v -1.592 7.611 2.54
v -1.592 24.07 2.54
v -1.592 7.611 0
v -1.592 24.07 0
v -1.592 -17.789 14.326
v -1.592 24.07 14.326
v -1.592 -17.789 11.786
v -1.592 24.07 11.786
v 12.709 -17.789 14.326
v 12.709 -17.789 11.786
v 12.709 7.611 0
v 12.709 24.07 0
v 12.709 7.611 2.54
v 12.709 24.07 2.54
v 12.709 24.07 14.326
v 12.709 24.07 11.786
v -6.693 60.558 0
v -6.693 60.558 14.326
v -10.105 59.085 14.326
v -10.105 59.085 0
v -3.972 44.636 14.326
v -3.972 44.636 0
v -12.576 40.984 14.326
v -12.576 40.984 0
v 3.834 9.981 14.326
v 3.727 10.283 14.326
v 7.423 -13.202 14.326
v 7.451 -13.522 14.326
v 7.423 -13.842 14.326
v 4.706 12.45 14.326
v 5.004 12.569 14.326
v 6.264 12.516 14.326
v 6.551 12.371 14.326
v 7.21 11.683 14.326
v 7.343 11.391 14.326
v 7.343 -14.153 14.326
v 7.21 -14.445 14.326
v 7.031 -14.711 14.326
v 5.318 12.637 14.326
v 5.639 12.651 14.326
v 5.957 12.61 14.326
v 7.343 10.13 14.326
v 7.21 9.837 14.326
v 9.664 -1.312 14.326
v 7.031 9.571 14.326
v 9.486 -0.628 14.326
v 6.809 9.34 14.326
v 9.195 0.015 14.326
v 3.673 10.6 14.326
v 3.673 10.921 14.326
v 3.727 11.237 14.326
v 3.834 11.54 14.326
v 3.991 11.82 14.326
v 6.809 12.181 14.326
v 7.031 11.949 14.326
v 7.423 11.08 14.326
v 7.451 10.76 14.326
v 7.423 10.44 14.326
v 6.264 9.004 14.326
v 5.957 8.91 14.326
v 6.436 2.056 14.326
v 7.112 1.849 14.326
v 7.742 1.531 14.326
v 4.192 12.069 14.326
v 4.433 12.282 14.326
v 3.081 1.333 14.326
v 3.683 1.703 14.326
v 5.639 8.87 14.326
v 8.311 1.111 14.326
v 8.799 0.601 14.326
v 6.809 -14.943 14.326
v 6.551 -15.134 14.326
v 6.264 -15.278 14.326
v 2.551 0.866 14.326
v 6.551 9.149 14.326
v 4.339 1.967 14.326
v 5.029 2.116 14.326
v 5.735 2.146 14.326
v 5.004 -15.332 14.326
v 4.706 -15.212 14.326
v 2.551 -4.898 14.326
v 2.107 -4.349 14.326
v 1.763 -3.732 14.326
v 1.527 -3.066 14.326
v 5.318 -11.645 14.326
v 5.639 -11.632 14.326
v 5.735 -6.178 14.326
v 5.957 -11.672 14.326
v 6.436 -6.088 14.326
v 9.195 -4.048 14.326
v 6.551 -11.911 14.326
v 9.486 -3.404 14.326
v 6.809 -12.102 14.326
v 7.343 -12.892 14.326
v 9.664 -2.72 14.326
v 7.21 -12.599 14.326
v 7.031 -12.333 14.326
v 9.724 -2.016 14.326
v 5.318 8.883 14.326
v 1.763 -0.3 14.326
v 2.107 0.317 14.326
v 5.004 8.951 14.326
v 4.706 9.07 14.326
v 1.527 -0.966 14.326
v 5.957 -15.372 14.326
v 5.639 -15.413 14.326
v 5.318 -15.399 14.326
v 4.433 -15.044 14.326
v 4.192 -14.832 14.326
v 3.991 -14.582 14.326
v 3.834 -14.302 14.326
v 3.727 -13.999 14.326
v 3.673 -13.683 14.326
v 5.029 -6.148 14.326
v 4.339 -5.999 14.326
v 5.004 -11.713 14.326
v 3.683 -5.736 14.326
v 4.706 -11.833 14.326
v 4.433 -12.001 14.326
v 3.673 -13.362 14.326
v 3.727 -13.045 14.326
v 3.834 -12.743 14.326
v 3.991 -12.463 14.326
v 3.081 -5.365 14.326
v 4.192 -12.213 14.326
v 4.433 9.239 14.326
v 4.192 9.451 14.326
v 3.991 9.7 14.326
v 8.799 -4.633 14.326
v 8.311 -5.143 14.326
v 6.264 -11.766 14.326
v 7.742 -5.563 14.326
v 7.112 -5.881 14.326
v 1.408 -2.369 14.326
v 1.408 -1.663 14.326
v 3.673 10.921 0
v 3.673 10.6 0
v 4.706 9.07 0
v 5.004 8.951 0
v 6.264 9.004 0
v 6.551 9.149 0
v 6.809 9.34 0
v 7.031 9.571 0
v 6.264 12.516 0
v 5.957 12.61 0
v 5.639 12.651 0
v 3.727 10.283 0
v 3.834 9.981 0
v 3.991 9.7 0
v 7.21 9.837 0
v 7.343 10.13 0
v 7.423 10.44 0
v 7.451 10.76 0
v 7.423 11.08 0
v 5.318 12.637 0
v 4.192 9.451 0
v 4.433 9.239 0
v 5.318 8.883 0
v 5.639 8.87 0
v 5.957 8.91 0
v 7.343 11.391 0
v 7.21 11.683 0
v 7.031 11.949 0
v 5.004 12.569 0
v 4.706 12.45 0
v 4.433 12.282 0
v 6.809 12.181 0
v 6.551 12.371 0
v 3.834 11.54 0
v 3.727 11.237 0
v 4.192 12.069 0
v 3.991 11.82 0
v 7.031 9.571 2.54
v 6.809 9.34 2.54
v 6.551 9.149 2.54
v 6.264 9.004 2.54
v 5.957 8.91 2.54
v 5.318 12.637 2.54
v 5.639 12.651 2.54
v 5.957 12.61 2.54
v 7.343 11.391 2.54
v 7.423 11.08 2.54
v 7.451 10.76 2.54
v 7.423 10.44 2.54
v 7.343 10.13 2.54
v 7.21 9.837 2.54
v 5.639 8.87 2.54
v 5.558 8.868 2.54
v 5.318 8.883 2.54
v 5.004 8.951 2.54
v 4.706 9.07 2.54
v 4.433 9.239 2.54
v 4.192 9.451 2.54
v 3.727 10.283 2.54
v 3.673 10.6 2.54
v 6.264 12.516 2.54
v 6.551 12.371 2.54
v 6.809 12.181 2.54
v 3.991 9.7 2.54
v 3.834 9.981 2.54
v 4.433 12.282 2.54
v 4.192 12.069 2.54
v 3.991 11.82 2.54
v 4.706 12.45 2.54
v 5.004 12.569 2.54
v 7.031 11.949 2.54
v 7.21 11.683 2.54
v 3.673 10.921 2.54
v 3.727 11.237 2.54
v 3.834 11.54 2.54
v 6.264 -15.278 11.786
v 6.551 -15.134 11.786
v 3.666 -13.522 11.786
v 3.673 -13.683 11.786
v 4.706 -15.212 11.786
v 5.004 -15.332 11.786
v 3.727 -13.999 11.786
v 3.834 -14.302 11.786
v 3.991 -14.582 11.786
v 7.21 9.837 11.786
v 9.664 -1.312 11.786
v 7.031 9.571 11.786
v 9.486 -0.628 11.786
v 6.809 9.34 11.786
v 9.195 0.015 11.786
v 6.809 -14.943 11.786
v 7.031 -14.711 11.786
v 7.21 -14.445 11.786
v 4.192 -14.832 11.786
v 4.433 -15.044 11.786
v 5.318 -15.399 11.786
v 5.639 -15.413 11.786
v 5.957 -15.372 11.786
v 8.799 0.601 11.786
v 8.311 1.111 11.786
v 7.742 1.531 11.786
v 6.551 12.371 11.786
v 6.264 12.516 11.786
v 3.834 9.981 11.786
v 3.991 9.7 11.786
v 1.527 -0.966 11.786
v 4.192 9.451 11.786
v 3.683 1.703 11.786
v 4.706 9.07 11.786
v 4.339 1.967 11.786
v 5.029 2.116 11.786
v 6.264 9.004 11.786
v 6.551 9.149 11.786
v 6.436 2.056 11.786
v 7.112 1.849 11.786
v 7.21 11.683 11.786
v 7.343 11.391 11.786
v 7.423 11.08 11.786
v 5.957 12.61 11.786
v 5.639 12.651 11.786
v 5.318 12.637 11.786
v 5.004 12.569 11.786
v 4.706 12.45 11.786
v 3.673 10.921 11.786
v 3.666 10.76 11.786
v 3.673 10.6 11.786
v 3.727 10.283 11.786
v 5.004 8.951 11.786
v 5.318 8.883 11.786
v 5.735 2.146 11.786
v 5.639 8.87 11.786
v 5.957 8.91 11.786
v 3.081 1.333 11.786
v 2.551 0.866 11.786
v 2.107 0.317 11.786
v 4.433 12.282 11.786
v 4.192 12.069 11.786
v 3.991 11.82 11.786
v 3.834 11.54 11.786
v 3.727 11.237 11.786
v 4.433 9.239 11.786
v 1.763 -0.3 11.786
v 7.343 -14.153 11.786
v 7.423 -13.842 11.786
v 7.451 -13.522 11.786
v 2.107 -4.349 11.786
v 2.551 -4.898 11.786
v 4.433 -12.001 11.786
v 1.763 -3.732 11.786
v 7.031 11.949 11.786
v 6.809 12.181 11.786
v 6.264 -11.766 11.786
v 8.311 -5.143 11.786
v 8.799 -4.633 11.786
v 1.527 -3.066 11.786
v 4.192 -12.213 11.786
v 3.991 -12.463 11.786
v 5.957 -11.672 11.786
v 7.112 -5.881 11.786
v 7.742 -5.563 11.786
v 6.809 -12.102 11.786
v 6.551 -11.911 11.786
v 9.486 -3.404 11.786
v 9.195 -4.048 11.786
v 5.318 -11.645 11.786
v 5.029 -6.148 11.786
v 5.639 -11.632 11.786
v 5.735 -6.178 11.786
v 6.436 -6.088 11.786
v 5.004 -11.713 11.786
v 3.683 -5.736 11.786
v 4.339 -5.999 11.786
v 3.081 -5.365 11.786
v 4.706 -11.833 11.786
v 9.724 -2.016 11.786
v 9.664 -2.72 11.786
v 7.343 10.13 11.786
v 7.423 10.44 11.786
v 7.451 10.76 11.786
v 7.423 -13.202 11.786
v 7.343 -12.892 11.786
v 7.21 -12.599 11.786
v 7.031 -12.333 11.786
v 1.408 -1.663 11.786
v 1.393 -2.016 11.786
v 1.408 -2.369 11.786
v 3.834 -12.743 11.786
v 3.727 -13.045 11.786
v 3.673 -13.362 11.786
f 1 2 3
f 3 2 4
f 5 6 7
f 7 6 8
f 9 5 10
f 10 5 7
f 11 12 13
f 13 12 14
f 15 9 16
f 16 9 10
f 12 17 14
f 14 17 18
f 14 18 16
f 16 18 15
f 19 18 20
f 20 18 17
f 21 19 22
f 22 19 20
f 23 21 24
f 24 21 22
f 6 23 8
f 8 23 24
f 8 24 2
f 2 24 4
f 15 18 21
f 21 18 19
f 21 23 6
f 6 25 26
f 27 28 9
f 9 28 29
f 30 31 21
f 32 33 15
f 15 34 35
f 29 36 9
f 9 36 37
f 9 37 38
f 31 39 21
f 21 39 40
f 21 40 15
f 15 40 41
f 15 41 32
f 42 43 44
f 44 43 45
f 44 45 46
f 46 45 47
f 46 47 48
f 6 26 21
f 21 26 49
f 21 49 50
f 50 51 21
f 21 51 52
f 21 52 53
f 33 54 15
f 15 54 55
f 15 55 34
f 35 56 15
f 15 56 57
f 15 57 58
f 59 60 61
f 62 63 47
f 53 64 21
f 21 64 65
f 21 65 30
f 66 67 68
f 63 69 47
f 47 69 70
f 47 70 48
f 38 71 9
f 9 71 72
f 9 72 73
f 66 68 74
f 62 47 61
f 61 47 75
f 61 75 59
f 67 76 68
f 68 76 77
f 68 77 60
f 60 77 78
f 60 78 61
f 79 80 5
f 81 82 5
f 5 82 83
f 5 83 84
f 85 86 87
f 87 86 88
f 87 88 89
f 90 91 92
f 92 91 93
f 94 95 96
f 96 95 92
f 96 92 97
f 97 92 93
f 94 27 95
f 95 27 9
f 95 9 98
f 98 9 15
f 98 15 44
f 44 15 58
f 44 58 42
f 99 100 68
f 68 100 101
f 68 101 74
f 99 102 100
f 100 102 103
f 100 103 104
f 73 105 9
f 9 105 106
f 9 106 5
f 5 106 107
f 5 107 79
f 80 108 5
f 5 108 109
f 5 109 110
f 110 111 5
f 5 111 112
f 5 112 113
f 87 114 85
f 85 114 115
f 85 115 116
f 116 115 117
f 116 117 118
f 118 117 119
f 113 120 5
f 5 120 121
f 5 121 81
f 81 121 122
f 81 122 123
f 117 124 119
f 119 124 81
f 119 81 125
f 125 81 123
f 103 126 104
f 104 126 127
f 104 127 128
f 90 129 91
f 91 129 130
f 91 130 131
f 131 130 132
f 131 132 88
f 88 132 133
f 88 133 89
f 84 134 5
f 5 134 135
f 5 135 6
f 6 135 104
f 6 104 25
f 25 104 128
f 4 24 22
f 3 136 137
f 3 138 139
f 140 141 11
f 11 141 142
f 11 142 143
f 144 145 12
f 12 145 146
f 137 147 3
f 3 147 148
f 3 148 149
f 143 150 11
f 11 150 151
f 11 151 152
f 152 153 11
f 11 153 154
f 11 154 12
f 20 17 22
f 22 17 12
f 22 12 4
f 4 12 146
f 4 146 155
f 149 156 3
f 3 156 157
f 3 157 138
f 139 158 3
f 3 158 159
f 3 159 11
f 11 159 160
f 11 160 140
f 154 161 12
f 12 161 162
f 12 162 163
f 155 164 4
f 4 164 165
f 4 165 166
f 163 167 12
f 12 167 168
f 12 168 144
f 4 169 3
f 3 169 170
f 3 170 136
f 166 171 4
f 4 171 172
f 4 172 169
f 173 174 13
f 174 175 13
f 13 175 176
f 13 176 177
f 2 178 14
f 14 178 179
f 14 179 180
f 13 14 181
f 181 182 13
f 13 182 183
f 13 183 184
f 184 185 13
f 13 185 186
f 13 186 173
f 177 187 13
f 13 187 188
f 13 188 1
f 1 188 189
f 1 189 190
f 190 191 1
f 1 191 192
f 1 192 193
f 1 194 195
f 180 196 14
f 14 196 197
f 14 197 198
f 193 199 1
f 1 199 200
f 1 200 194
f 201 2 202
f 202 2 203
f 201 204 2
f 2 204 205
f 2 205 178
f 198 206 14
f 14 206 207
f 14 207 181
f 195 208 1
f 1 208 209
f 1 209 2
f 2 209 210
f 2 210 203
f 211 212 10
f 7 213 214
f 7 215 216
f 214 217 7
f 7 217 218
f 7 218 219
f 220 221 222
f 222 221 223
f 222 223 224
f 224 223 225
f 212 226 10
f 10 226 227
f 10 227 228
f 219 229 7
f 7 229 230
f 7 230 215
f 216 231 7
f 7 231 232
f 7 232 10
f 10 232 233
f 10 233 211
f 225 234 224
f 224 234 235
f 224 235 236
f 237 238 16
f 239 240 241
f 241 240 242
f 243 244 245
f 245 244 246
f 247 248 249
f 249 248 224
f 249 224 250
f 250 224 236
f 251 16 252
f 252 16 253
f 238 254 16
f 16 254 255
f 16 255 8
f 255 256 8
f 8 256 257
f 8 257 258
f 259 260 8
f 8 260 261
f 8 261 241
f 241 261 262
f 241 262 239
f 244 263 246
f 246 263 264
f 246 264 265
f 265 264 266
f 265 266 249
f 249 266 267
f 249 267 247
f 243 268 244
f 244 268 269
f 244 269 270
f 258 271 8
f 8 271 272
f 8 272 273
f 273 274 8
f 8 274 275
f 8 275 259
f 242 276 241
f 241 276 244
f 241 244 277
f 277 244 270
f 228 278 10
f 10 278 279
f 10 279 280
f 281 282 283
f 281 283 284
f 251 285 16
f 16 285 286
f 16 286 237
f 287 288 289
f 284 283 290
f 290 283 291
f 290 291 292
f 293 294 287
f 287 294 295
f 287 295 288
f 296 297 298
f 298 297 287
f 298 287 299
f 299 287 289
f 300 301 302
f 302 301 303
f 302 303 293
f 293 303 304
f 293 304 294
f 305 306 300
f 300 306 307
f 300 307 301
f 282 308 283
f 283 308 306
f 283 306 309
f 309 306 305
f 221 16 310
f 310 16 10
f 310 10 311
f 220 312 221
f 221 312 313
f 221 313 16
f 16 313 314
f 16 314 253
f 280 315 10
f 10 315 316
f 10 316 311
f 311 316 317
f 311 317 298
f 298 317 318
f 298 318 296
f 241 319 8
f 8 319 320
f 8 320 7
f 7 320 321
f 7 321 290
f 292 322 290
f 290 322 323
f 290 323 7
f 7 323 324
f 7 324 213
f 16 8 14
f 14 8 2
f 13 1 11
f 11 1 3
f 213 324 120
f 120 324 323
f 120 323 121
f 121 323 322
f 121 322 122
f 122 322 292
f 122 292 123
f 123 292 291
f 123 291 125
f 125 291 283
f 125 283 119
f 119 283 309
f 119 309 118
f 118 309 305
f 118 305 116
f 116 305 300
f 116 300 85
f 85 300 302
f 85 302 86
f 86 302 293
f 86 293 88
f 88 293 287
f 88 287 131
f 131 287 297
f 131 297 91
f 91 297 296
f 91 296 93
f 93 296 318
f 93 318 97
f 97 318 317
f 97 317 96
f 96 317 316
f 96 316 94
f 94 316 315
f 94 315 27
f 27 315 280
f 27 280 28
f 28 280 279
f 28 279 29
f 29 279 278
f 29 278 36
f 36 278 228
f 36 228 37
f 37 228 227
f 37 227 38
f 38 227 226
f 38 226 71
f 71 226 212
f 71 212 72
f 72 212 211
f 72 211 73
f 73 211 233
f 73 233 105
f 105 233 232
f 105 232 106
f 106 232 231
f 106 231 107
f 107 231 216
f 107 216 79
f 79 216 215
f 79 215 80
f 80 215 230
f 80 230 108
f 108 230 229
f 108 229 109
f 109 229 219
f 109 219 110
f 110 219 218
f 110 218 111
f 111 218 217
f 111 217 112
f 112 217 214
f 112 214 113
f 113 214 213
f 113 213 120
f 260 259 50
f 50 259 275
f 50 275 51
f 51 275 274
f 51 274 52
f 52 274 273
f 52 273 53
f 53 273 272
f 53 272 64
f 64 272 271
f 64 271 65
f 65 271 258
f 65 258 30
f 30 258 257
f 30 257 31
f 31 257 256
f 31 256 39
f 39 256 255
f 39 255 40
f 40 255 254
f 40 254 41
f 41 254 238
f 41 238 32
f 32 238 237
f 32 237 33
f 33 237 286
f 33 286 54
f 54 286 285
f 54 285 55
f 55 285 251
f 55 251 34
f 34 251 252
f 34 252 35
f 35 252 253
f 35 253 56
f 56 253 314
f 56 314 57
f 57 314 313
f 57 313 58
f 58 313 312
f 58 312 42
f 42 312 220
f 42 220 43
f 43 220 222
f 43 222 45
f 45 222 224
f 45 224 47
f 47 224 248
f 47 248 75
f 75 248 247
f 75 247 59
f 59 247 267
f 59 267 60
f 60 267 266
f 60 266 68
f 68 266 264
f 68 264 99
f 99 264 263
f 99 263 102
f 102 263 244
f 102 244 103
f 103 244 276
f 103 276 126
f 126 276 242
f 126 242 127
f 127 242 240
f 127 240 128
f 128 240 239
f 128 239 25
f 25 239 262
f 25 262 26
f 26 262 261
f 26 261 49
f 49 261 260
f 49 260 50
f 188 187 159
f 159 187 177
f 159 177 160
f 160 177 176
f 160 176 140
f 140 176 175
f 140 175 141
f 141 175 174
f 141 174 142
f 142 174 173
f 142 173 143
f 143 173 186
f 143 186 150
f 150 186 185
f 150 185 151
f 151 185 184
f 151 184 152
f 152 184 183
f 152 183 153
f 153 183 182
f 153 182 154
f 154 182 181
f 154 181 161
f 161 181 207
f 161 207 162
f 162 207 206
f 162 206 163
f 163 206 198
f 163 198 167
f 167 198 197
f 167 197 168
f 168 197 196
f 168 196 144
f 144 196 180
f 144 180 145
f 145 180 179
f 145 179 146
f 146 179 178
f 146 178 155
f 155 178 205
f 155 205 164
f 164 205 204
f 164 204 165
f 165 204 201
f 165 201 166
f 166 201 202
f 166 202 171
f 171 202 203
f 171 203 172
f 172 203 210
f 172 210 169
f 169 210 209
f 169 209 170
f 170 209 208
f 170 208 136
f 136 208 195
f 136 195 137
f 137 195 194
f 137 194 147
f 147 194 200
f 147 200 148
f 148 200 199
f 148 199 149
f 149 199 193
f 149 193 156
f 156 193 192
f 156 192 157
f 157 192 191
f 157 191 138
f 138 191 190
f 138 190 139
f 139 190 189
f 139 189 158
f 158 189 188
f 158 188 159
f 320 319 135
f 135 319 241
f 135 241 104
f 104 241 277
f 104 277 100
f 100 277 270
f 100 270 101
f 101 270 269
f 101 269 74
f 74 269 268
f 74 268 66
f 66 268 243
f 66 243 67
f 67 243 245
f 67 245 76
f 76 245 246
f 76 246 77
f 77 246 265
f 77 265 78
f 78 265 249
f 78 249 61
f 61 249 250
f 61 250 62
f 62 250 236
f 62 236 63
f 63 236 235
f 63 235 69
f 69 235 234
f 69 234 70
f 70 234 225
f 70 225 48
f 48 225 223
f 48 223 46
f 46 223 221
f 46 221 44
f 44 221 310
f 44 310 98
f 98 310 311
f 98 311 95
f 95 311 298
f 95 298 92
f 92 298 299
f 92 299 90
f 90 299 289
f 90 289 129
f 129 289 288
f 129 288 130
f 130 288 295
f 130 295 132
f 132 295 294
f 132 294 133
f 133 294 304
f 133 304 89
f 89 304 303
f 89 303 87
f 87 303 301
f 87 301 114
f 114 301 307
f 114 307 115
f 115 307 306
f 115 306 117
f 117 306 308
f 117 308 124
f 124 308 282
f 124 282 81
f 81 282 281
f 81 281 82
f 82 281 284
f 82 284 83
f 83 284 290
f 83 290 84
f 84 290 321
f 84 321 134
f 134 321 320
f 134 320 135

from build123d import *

# Parameters (mm, degrees)
BOSS_EXTRUDE2_DEPTH = 14.3256
SKETCH3_W           = 9.2456
SKETCH3_H           = 41.8592
CUT_EXTRUDE1_DEPTH  = 14.3256
SKETCH5_W           = 2.54
SKETCH5_H           = 25.4
CUT_EXTRUDE2_DEPTH  = 14.3256
SKETCH6_R           = 1.8923
SKETCH6_R_2         = 4.1656
CUT_EXTRUDE3_DEPTH  = 14.3256


with BuildPart() as part:
    # Sketch1 → Boss-Extrude2 (new body)
    with BuildSketch(Plane.XY):
        Polygon((-1.591692429, -17.789476976), (12.708507571, -17.789476976), (12.708507571, 24.069723024), (-6.692780338, 60.558238657), (-10.104996335, 59.08528636), (-3.971611665, 44.635937574), (-12.575754632, 40.98369557), (-1.591692429, 24.069723024), align=None)
    extrude(amount=BOSS_EXTRUDE2_DEPTH)

    # Sketch3 → Cut-Extrude1 (cut)
    with BuildSketch(Plane(origin=(12.708507571, 0, 0), x_dir=(0, 0, -1), z_dir=(1, 0, 0))):
        with Locations((-7.1628, 3.140123024)):
            Rectangle(SKETCH3_W, SKETCH3_H)
    extrude(amount=-CUT_EXTRUDE1_DEPTH, mode=Mode.SUBTRACT)

    # Sketch5 → Cut-Extrude2 (cut)
    with BuildSketch(Plane(origin=(12.708507571, 0, 0), x_dir=(0, 0, -1), z_dir=(1, 0, 0))):
        with Locations((-1.27, -5.089476976)):
            Rectangle(SKETCH5_W, SKETCH5_H)
    extrude(amount=-CUT_EXTRUDE2_DEPTH, mode=Mode.SUBTRACT)

    # Sketch6 → Cut-Extrude3 (cut)
    with BuildSketch(Plane.XY.offset(14.3256)):
        with Locations((5.558407571, -13.522276976)):
            Circle(SKETCH6_R)
        with Locations((5.558407571, 10.760123024)):
            Circle(SKETCH6_R)
        with Locations((5.558407571, -2.016076976)):
            Circle(SKETCH6_R_2)
    extrude(amount=-CUT_EXTRUDE3_DEPTH, mode=Mode.SUBTRACT)


solid = part.part
